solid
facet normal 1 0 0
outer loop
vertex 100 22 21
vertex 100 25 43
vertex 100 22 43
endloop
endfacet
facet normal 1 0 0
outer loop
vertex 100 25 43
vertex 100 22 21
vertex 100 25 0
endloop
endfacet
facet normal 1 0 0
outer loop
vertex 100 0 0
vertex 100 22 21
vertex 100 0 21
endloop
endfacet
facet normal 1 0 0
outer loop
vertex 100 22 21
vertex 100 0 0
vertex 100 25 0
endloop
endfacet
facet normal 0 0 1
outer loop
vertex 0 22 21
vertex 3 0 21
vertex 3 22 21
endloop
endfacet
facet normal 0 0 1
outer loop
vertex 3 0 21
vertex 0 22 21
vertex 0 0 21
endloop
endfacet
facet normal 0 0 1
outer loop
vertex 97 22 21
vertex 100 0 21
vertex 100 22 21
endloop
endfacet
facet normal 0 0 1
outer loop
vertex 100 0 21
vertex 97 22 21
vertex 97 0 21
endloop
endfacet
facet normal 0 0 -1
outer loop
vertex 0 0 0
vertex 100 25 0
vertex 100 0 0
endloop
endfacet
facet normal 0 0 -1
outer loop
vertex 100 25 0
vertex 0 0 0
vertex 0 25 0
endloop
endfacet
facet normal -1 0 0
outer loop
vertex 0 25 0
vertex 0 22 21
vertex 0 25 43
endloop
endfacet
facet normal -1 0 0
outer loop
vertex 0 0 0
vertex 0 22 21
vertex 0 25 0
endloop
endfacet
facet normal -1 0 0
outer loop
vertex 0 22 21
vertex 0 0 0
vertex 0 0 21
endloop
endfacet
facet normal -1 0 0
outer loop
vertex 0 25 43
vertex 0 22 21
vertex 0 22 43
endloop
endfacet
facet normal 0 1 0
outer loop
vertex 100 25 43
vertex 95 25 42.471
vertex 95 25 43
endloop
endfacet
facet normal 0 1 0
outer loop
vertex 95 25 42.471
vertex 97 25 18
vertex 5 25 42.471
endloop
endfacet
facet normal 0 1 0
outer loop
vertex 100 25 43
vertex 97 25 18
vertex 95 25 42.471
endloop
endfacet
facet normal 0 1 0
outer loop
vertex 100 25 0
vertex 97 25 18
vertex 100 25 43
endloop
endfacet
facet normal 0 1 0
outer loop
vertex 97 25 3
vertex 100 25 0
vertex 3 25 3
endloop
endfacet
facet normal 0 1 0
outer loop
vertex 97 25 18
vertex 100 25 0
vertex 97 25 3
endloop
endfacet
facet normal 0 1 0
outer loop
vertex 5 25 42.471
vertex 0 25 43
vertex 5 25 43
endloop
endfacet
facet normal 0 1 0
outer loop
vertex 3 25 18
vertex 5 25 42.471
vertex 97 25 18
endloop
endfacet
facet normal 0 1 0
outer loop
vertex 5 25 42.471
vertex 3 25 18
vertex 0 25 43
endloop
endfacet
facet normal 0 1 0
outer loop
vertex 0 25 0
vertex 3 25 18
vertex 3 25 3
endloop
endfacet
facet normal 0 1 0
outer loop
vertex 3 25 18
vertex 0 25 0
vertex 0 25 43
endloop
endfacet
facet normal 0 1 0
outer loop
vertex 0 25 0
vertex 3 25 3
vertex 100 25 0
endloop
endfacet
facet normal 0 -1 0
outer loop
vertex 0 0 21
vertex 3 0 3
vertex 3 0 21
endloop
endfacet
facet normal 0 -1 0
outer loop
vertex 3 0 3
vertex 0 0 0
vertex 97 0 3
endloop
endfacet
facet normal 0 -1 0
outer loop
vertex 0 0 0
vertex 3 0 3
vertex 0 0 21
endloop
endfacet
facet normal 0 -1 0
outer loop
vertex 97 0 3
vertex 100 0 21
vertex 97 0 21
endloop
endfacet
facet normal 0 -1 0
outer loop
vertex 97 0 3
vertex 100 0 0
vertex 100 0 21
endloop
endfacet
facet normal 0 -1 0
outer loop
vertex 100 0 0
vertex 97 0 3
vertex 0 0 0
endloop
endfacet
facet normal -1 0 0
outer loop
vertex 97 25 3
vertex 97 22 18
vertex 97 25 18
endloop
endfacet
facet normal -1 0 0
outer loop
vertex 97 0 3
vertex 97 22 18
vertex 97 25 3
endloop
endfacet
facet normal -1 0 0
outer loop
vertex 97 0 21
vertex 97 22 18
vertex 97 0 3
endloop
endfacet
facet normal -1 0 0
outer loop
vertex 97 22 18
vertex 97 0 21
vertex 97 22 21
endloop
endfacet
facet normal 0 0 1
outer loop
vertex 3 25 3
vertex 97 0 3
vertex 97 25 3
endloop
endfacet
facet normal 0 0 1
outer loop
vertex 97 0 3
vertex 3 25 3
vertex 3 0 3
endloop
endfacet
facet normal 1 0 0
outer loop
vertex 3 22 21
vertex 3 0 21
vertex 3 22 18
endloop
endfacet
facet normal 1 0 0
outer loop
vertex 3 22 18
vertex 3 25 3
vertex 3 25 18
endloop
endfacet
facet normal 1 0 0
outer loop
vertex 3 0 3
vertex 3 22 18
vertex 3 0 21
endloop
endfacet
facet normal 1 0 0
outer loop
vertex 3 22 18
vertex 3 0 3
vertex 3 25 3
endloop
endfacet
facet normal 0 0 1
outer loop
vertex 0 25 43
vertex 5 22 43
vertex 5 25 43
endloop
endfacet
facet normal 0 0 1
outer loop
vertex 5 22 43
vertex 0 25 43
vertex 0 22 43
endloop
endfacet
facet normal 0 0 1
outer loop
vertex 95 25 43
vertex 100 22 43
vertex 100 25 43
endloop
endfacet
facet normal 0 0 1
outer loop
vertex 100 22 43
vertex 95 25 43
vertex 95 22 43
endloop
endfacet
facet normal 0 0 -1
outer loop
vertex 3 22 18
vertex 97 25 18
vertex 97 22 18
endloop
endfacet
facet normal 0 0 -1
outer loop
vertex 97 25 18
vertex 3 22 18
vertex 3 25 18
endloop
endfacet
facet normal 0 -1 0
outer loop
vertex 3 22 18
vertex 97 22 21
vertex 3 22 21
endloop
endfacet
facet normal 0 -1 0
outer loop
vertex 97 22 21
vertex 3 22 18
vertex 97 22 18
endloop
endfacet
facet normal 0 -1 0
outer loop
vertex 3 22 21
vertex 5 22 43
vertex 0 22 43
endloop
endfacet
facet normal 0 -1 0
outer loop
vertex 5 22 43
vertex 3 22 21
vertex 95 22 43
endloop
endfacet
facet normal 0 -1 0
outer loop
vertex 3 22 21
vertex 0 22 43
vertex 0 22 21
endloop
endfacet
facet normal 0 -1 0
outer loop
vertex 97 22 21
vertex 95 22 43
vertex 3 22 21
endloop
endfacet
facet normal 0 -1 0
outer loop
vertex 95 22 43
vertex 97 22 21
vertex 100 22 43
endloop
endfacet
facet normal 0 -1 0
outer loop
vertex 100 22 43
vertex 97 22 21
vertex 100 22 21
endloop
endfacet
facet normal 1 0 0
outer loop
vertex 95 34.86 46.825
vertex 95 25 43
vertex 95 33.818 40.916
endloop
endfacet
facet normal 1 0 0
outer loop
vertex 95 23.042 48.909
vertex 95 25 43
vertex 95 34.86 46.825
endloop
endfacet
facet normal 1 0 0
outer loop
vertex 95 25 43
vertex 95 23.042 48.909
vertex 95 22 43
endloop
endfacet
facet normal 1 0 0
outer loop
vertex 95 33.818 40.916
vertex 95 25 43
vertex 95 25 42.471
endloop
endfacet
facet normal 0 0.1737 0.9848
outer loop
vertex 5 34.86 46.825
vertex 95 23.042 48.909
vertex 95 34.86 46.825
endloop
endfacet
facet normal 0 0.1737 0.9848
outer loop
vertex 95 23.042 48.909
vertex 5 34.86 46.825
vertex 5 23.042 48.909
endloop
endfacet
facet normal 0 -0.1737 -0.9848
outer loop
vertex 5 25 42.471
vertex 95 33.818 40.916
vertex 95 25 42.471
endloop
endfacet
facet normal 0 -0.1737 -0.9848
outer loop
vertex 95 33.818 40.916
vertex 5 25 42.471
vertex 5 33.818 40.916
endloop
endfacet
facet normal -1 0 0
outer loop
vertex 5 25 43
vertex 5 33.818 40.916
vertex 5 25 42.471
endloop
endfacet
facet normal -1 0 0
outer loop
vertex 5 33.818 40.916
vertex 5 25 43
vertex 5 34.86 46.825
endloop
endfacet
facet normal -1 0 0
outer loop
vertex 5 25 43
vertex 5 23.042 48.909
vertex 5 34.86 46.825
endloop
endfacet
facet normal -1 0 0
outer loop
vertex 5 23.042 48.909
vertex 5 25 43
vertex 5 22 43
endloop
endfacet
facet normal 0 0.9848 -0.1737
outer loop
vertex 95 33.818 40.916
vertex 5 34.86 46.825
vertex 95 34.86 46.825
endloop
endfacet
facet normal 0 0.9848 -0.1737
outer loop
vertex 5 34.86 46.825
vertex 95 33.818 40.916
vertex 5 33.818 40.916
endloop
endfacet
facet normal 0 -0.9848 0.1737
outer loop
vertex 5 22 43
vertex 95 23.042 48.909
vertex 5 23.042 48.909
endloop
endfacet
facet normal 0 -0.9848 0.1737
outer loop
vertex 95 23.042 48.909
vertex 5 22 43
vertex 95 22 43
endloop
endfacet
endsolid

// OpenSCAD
// ============================
// Car Screen Support (Parametric)
// ============================

// ---------- Parameters ----------
support_height = 25;        // mm - vertical height (your hair clip replacement)
dash_thickness = 18;        // mm - thickness of dashboard edge
clip_depth     = 25;        // mm - how deep the clip grabs
wall_thickness = 3;         // mm - structural thickness

screen_width   = 90;        // mm - width of screen base
screen_depth   = 12;        // mm - how much the screen rests on
tilt_angle     = 10;        // degrees - backward tilt

base_width     = screen_width + 10;
fillet_radius  = 2;

// ---------- Quality ----------
$fn = 64;

// ============================
// Main Assembly
// ============================
union() {
    dashboard_clip();
    vertical_support();
    screen_saddle();
}

// ============================
// Dashboard Clip
// ============================
module dashboard_clip() {
    difference() {
        // Outer shape
        cube([
            base_width,
            clip_depth,
            dash_thickness + wall_thickness
        ]);

        // Inner cutout
        translate([wall_thickness, 0, wall_thickness])
            cube([
                base_width - 2 * wall_thickness,
                clip_depth,
                dash_thickness
            ]);
    }
}

// ============================
// Vertical Support
// ============================
module vertical_support() {
    translate([0, clip_depth - wall_thickness, dash_thickness])
        cube([
            base_width,
            wall_thickness,
            support_height
        ]);
}

// ============================
// Screen Saddle
// ============================
module screen_saddle() {
    translate([
        (base_width - screen_width) / 2,
        clip_depth - wall_thickness,
        dash_thickness + support_height
    ])
    rotate([-tilt_angle, 0, 0])
        cube([
            screen_width,
            screen_depth,
            wall_thickness * 2
        ]);
}
